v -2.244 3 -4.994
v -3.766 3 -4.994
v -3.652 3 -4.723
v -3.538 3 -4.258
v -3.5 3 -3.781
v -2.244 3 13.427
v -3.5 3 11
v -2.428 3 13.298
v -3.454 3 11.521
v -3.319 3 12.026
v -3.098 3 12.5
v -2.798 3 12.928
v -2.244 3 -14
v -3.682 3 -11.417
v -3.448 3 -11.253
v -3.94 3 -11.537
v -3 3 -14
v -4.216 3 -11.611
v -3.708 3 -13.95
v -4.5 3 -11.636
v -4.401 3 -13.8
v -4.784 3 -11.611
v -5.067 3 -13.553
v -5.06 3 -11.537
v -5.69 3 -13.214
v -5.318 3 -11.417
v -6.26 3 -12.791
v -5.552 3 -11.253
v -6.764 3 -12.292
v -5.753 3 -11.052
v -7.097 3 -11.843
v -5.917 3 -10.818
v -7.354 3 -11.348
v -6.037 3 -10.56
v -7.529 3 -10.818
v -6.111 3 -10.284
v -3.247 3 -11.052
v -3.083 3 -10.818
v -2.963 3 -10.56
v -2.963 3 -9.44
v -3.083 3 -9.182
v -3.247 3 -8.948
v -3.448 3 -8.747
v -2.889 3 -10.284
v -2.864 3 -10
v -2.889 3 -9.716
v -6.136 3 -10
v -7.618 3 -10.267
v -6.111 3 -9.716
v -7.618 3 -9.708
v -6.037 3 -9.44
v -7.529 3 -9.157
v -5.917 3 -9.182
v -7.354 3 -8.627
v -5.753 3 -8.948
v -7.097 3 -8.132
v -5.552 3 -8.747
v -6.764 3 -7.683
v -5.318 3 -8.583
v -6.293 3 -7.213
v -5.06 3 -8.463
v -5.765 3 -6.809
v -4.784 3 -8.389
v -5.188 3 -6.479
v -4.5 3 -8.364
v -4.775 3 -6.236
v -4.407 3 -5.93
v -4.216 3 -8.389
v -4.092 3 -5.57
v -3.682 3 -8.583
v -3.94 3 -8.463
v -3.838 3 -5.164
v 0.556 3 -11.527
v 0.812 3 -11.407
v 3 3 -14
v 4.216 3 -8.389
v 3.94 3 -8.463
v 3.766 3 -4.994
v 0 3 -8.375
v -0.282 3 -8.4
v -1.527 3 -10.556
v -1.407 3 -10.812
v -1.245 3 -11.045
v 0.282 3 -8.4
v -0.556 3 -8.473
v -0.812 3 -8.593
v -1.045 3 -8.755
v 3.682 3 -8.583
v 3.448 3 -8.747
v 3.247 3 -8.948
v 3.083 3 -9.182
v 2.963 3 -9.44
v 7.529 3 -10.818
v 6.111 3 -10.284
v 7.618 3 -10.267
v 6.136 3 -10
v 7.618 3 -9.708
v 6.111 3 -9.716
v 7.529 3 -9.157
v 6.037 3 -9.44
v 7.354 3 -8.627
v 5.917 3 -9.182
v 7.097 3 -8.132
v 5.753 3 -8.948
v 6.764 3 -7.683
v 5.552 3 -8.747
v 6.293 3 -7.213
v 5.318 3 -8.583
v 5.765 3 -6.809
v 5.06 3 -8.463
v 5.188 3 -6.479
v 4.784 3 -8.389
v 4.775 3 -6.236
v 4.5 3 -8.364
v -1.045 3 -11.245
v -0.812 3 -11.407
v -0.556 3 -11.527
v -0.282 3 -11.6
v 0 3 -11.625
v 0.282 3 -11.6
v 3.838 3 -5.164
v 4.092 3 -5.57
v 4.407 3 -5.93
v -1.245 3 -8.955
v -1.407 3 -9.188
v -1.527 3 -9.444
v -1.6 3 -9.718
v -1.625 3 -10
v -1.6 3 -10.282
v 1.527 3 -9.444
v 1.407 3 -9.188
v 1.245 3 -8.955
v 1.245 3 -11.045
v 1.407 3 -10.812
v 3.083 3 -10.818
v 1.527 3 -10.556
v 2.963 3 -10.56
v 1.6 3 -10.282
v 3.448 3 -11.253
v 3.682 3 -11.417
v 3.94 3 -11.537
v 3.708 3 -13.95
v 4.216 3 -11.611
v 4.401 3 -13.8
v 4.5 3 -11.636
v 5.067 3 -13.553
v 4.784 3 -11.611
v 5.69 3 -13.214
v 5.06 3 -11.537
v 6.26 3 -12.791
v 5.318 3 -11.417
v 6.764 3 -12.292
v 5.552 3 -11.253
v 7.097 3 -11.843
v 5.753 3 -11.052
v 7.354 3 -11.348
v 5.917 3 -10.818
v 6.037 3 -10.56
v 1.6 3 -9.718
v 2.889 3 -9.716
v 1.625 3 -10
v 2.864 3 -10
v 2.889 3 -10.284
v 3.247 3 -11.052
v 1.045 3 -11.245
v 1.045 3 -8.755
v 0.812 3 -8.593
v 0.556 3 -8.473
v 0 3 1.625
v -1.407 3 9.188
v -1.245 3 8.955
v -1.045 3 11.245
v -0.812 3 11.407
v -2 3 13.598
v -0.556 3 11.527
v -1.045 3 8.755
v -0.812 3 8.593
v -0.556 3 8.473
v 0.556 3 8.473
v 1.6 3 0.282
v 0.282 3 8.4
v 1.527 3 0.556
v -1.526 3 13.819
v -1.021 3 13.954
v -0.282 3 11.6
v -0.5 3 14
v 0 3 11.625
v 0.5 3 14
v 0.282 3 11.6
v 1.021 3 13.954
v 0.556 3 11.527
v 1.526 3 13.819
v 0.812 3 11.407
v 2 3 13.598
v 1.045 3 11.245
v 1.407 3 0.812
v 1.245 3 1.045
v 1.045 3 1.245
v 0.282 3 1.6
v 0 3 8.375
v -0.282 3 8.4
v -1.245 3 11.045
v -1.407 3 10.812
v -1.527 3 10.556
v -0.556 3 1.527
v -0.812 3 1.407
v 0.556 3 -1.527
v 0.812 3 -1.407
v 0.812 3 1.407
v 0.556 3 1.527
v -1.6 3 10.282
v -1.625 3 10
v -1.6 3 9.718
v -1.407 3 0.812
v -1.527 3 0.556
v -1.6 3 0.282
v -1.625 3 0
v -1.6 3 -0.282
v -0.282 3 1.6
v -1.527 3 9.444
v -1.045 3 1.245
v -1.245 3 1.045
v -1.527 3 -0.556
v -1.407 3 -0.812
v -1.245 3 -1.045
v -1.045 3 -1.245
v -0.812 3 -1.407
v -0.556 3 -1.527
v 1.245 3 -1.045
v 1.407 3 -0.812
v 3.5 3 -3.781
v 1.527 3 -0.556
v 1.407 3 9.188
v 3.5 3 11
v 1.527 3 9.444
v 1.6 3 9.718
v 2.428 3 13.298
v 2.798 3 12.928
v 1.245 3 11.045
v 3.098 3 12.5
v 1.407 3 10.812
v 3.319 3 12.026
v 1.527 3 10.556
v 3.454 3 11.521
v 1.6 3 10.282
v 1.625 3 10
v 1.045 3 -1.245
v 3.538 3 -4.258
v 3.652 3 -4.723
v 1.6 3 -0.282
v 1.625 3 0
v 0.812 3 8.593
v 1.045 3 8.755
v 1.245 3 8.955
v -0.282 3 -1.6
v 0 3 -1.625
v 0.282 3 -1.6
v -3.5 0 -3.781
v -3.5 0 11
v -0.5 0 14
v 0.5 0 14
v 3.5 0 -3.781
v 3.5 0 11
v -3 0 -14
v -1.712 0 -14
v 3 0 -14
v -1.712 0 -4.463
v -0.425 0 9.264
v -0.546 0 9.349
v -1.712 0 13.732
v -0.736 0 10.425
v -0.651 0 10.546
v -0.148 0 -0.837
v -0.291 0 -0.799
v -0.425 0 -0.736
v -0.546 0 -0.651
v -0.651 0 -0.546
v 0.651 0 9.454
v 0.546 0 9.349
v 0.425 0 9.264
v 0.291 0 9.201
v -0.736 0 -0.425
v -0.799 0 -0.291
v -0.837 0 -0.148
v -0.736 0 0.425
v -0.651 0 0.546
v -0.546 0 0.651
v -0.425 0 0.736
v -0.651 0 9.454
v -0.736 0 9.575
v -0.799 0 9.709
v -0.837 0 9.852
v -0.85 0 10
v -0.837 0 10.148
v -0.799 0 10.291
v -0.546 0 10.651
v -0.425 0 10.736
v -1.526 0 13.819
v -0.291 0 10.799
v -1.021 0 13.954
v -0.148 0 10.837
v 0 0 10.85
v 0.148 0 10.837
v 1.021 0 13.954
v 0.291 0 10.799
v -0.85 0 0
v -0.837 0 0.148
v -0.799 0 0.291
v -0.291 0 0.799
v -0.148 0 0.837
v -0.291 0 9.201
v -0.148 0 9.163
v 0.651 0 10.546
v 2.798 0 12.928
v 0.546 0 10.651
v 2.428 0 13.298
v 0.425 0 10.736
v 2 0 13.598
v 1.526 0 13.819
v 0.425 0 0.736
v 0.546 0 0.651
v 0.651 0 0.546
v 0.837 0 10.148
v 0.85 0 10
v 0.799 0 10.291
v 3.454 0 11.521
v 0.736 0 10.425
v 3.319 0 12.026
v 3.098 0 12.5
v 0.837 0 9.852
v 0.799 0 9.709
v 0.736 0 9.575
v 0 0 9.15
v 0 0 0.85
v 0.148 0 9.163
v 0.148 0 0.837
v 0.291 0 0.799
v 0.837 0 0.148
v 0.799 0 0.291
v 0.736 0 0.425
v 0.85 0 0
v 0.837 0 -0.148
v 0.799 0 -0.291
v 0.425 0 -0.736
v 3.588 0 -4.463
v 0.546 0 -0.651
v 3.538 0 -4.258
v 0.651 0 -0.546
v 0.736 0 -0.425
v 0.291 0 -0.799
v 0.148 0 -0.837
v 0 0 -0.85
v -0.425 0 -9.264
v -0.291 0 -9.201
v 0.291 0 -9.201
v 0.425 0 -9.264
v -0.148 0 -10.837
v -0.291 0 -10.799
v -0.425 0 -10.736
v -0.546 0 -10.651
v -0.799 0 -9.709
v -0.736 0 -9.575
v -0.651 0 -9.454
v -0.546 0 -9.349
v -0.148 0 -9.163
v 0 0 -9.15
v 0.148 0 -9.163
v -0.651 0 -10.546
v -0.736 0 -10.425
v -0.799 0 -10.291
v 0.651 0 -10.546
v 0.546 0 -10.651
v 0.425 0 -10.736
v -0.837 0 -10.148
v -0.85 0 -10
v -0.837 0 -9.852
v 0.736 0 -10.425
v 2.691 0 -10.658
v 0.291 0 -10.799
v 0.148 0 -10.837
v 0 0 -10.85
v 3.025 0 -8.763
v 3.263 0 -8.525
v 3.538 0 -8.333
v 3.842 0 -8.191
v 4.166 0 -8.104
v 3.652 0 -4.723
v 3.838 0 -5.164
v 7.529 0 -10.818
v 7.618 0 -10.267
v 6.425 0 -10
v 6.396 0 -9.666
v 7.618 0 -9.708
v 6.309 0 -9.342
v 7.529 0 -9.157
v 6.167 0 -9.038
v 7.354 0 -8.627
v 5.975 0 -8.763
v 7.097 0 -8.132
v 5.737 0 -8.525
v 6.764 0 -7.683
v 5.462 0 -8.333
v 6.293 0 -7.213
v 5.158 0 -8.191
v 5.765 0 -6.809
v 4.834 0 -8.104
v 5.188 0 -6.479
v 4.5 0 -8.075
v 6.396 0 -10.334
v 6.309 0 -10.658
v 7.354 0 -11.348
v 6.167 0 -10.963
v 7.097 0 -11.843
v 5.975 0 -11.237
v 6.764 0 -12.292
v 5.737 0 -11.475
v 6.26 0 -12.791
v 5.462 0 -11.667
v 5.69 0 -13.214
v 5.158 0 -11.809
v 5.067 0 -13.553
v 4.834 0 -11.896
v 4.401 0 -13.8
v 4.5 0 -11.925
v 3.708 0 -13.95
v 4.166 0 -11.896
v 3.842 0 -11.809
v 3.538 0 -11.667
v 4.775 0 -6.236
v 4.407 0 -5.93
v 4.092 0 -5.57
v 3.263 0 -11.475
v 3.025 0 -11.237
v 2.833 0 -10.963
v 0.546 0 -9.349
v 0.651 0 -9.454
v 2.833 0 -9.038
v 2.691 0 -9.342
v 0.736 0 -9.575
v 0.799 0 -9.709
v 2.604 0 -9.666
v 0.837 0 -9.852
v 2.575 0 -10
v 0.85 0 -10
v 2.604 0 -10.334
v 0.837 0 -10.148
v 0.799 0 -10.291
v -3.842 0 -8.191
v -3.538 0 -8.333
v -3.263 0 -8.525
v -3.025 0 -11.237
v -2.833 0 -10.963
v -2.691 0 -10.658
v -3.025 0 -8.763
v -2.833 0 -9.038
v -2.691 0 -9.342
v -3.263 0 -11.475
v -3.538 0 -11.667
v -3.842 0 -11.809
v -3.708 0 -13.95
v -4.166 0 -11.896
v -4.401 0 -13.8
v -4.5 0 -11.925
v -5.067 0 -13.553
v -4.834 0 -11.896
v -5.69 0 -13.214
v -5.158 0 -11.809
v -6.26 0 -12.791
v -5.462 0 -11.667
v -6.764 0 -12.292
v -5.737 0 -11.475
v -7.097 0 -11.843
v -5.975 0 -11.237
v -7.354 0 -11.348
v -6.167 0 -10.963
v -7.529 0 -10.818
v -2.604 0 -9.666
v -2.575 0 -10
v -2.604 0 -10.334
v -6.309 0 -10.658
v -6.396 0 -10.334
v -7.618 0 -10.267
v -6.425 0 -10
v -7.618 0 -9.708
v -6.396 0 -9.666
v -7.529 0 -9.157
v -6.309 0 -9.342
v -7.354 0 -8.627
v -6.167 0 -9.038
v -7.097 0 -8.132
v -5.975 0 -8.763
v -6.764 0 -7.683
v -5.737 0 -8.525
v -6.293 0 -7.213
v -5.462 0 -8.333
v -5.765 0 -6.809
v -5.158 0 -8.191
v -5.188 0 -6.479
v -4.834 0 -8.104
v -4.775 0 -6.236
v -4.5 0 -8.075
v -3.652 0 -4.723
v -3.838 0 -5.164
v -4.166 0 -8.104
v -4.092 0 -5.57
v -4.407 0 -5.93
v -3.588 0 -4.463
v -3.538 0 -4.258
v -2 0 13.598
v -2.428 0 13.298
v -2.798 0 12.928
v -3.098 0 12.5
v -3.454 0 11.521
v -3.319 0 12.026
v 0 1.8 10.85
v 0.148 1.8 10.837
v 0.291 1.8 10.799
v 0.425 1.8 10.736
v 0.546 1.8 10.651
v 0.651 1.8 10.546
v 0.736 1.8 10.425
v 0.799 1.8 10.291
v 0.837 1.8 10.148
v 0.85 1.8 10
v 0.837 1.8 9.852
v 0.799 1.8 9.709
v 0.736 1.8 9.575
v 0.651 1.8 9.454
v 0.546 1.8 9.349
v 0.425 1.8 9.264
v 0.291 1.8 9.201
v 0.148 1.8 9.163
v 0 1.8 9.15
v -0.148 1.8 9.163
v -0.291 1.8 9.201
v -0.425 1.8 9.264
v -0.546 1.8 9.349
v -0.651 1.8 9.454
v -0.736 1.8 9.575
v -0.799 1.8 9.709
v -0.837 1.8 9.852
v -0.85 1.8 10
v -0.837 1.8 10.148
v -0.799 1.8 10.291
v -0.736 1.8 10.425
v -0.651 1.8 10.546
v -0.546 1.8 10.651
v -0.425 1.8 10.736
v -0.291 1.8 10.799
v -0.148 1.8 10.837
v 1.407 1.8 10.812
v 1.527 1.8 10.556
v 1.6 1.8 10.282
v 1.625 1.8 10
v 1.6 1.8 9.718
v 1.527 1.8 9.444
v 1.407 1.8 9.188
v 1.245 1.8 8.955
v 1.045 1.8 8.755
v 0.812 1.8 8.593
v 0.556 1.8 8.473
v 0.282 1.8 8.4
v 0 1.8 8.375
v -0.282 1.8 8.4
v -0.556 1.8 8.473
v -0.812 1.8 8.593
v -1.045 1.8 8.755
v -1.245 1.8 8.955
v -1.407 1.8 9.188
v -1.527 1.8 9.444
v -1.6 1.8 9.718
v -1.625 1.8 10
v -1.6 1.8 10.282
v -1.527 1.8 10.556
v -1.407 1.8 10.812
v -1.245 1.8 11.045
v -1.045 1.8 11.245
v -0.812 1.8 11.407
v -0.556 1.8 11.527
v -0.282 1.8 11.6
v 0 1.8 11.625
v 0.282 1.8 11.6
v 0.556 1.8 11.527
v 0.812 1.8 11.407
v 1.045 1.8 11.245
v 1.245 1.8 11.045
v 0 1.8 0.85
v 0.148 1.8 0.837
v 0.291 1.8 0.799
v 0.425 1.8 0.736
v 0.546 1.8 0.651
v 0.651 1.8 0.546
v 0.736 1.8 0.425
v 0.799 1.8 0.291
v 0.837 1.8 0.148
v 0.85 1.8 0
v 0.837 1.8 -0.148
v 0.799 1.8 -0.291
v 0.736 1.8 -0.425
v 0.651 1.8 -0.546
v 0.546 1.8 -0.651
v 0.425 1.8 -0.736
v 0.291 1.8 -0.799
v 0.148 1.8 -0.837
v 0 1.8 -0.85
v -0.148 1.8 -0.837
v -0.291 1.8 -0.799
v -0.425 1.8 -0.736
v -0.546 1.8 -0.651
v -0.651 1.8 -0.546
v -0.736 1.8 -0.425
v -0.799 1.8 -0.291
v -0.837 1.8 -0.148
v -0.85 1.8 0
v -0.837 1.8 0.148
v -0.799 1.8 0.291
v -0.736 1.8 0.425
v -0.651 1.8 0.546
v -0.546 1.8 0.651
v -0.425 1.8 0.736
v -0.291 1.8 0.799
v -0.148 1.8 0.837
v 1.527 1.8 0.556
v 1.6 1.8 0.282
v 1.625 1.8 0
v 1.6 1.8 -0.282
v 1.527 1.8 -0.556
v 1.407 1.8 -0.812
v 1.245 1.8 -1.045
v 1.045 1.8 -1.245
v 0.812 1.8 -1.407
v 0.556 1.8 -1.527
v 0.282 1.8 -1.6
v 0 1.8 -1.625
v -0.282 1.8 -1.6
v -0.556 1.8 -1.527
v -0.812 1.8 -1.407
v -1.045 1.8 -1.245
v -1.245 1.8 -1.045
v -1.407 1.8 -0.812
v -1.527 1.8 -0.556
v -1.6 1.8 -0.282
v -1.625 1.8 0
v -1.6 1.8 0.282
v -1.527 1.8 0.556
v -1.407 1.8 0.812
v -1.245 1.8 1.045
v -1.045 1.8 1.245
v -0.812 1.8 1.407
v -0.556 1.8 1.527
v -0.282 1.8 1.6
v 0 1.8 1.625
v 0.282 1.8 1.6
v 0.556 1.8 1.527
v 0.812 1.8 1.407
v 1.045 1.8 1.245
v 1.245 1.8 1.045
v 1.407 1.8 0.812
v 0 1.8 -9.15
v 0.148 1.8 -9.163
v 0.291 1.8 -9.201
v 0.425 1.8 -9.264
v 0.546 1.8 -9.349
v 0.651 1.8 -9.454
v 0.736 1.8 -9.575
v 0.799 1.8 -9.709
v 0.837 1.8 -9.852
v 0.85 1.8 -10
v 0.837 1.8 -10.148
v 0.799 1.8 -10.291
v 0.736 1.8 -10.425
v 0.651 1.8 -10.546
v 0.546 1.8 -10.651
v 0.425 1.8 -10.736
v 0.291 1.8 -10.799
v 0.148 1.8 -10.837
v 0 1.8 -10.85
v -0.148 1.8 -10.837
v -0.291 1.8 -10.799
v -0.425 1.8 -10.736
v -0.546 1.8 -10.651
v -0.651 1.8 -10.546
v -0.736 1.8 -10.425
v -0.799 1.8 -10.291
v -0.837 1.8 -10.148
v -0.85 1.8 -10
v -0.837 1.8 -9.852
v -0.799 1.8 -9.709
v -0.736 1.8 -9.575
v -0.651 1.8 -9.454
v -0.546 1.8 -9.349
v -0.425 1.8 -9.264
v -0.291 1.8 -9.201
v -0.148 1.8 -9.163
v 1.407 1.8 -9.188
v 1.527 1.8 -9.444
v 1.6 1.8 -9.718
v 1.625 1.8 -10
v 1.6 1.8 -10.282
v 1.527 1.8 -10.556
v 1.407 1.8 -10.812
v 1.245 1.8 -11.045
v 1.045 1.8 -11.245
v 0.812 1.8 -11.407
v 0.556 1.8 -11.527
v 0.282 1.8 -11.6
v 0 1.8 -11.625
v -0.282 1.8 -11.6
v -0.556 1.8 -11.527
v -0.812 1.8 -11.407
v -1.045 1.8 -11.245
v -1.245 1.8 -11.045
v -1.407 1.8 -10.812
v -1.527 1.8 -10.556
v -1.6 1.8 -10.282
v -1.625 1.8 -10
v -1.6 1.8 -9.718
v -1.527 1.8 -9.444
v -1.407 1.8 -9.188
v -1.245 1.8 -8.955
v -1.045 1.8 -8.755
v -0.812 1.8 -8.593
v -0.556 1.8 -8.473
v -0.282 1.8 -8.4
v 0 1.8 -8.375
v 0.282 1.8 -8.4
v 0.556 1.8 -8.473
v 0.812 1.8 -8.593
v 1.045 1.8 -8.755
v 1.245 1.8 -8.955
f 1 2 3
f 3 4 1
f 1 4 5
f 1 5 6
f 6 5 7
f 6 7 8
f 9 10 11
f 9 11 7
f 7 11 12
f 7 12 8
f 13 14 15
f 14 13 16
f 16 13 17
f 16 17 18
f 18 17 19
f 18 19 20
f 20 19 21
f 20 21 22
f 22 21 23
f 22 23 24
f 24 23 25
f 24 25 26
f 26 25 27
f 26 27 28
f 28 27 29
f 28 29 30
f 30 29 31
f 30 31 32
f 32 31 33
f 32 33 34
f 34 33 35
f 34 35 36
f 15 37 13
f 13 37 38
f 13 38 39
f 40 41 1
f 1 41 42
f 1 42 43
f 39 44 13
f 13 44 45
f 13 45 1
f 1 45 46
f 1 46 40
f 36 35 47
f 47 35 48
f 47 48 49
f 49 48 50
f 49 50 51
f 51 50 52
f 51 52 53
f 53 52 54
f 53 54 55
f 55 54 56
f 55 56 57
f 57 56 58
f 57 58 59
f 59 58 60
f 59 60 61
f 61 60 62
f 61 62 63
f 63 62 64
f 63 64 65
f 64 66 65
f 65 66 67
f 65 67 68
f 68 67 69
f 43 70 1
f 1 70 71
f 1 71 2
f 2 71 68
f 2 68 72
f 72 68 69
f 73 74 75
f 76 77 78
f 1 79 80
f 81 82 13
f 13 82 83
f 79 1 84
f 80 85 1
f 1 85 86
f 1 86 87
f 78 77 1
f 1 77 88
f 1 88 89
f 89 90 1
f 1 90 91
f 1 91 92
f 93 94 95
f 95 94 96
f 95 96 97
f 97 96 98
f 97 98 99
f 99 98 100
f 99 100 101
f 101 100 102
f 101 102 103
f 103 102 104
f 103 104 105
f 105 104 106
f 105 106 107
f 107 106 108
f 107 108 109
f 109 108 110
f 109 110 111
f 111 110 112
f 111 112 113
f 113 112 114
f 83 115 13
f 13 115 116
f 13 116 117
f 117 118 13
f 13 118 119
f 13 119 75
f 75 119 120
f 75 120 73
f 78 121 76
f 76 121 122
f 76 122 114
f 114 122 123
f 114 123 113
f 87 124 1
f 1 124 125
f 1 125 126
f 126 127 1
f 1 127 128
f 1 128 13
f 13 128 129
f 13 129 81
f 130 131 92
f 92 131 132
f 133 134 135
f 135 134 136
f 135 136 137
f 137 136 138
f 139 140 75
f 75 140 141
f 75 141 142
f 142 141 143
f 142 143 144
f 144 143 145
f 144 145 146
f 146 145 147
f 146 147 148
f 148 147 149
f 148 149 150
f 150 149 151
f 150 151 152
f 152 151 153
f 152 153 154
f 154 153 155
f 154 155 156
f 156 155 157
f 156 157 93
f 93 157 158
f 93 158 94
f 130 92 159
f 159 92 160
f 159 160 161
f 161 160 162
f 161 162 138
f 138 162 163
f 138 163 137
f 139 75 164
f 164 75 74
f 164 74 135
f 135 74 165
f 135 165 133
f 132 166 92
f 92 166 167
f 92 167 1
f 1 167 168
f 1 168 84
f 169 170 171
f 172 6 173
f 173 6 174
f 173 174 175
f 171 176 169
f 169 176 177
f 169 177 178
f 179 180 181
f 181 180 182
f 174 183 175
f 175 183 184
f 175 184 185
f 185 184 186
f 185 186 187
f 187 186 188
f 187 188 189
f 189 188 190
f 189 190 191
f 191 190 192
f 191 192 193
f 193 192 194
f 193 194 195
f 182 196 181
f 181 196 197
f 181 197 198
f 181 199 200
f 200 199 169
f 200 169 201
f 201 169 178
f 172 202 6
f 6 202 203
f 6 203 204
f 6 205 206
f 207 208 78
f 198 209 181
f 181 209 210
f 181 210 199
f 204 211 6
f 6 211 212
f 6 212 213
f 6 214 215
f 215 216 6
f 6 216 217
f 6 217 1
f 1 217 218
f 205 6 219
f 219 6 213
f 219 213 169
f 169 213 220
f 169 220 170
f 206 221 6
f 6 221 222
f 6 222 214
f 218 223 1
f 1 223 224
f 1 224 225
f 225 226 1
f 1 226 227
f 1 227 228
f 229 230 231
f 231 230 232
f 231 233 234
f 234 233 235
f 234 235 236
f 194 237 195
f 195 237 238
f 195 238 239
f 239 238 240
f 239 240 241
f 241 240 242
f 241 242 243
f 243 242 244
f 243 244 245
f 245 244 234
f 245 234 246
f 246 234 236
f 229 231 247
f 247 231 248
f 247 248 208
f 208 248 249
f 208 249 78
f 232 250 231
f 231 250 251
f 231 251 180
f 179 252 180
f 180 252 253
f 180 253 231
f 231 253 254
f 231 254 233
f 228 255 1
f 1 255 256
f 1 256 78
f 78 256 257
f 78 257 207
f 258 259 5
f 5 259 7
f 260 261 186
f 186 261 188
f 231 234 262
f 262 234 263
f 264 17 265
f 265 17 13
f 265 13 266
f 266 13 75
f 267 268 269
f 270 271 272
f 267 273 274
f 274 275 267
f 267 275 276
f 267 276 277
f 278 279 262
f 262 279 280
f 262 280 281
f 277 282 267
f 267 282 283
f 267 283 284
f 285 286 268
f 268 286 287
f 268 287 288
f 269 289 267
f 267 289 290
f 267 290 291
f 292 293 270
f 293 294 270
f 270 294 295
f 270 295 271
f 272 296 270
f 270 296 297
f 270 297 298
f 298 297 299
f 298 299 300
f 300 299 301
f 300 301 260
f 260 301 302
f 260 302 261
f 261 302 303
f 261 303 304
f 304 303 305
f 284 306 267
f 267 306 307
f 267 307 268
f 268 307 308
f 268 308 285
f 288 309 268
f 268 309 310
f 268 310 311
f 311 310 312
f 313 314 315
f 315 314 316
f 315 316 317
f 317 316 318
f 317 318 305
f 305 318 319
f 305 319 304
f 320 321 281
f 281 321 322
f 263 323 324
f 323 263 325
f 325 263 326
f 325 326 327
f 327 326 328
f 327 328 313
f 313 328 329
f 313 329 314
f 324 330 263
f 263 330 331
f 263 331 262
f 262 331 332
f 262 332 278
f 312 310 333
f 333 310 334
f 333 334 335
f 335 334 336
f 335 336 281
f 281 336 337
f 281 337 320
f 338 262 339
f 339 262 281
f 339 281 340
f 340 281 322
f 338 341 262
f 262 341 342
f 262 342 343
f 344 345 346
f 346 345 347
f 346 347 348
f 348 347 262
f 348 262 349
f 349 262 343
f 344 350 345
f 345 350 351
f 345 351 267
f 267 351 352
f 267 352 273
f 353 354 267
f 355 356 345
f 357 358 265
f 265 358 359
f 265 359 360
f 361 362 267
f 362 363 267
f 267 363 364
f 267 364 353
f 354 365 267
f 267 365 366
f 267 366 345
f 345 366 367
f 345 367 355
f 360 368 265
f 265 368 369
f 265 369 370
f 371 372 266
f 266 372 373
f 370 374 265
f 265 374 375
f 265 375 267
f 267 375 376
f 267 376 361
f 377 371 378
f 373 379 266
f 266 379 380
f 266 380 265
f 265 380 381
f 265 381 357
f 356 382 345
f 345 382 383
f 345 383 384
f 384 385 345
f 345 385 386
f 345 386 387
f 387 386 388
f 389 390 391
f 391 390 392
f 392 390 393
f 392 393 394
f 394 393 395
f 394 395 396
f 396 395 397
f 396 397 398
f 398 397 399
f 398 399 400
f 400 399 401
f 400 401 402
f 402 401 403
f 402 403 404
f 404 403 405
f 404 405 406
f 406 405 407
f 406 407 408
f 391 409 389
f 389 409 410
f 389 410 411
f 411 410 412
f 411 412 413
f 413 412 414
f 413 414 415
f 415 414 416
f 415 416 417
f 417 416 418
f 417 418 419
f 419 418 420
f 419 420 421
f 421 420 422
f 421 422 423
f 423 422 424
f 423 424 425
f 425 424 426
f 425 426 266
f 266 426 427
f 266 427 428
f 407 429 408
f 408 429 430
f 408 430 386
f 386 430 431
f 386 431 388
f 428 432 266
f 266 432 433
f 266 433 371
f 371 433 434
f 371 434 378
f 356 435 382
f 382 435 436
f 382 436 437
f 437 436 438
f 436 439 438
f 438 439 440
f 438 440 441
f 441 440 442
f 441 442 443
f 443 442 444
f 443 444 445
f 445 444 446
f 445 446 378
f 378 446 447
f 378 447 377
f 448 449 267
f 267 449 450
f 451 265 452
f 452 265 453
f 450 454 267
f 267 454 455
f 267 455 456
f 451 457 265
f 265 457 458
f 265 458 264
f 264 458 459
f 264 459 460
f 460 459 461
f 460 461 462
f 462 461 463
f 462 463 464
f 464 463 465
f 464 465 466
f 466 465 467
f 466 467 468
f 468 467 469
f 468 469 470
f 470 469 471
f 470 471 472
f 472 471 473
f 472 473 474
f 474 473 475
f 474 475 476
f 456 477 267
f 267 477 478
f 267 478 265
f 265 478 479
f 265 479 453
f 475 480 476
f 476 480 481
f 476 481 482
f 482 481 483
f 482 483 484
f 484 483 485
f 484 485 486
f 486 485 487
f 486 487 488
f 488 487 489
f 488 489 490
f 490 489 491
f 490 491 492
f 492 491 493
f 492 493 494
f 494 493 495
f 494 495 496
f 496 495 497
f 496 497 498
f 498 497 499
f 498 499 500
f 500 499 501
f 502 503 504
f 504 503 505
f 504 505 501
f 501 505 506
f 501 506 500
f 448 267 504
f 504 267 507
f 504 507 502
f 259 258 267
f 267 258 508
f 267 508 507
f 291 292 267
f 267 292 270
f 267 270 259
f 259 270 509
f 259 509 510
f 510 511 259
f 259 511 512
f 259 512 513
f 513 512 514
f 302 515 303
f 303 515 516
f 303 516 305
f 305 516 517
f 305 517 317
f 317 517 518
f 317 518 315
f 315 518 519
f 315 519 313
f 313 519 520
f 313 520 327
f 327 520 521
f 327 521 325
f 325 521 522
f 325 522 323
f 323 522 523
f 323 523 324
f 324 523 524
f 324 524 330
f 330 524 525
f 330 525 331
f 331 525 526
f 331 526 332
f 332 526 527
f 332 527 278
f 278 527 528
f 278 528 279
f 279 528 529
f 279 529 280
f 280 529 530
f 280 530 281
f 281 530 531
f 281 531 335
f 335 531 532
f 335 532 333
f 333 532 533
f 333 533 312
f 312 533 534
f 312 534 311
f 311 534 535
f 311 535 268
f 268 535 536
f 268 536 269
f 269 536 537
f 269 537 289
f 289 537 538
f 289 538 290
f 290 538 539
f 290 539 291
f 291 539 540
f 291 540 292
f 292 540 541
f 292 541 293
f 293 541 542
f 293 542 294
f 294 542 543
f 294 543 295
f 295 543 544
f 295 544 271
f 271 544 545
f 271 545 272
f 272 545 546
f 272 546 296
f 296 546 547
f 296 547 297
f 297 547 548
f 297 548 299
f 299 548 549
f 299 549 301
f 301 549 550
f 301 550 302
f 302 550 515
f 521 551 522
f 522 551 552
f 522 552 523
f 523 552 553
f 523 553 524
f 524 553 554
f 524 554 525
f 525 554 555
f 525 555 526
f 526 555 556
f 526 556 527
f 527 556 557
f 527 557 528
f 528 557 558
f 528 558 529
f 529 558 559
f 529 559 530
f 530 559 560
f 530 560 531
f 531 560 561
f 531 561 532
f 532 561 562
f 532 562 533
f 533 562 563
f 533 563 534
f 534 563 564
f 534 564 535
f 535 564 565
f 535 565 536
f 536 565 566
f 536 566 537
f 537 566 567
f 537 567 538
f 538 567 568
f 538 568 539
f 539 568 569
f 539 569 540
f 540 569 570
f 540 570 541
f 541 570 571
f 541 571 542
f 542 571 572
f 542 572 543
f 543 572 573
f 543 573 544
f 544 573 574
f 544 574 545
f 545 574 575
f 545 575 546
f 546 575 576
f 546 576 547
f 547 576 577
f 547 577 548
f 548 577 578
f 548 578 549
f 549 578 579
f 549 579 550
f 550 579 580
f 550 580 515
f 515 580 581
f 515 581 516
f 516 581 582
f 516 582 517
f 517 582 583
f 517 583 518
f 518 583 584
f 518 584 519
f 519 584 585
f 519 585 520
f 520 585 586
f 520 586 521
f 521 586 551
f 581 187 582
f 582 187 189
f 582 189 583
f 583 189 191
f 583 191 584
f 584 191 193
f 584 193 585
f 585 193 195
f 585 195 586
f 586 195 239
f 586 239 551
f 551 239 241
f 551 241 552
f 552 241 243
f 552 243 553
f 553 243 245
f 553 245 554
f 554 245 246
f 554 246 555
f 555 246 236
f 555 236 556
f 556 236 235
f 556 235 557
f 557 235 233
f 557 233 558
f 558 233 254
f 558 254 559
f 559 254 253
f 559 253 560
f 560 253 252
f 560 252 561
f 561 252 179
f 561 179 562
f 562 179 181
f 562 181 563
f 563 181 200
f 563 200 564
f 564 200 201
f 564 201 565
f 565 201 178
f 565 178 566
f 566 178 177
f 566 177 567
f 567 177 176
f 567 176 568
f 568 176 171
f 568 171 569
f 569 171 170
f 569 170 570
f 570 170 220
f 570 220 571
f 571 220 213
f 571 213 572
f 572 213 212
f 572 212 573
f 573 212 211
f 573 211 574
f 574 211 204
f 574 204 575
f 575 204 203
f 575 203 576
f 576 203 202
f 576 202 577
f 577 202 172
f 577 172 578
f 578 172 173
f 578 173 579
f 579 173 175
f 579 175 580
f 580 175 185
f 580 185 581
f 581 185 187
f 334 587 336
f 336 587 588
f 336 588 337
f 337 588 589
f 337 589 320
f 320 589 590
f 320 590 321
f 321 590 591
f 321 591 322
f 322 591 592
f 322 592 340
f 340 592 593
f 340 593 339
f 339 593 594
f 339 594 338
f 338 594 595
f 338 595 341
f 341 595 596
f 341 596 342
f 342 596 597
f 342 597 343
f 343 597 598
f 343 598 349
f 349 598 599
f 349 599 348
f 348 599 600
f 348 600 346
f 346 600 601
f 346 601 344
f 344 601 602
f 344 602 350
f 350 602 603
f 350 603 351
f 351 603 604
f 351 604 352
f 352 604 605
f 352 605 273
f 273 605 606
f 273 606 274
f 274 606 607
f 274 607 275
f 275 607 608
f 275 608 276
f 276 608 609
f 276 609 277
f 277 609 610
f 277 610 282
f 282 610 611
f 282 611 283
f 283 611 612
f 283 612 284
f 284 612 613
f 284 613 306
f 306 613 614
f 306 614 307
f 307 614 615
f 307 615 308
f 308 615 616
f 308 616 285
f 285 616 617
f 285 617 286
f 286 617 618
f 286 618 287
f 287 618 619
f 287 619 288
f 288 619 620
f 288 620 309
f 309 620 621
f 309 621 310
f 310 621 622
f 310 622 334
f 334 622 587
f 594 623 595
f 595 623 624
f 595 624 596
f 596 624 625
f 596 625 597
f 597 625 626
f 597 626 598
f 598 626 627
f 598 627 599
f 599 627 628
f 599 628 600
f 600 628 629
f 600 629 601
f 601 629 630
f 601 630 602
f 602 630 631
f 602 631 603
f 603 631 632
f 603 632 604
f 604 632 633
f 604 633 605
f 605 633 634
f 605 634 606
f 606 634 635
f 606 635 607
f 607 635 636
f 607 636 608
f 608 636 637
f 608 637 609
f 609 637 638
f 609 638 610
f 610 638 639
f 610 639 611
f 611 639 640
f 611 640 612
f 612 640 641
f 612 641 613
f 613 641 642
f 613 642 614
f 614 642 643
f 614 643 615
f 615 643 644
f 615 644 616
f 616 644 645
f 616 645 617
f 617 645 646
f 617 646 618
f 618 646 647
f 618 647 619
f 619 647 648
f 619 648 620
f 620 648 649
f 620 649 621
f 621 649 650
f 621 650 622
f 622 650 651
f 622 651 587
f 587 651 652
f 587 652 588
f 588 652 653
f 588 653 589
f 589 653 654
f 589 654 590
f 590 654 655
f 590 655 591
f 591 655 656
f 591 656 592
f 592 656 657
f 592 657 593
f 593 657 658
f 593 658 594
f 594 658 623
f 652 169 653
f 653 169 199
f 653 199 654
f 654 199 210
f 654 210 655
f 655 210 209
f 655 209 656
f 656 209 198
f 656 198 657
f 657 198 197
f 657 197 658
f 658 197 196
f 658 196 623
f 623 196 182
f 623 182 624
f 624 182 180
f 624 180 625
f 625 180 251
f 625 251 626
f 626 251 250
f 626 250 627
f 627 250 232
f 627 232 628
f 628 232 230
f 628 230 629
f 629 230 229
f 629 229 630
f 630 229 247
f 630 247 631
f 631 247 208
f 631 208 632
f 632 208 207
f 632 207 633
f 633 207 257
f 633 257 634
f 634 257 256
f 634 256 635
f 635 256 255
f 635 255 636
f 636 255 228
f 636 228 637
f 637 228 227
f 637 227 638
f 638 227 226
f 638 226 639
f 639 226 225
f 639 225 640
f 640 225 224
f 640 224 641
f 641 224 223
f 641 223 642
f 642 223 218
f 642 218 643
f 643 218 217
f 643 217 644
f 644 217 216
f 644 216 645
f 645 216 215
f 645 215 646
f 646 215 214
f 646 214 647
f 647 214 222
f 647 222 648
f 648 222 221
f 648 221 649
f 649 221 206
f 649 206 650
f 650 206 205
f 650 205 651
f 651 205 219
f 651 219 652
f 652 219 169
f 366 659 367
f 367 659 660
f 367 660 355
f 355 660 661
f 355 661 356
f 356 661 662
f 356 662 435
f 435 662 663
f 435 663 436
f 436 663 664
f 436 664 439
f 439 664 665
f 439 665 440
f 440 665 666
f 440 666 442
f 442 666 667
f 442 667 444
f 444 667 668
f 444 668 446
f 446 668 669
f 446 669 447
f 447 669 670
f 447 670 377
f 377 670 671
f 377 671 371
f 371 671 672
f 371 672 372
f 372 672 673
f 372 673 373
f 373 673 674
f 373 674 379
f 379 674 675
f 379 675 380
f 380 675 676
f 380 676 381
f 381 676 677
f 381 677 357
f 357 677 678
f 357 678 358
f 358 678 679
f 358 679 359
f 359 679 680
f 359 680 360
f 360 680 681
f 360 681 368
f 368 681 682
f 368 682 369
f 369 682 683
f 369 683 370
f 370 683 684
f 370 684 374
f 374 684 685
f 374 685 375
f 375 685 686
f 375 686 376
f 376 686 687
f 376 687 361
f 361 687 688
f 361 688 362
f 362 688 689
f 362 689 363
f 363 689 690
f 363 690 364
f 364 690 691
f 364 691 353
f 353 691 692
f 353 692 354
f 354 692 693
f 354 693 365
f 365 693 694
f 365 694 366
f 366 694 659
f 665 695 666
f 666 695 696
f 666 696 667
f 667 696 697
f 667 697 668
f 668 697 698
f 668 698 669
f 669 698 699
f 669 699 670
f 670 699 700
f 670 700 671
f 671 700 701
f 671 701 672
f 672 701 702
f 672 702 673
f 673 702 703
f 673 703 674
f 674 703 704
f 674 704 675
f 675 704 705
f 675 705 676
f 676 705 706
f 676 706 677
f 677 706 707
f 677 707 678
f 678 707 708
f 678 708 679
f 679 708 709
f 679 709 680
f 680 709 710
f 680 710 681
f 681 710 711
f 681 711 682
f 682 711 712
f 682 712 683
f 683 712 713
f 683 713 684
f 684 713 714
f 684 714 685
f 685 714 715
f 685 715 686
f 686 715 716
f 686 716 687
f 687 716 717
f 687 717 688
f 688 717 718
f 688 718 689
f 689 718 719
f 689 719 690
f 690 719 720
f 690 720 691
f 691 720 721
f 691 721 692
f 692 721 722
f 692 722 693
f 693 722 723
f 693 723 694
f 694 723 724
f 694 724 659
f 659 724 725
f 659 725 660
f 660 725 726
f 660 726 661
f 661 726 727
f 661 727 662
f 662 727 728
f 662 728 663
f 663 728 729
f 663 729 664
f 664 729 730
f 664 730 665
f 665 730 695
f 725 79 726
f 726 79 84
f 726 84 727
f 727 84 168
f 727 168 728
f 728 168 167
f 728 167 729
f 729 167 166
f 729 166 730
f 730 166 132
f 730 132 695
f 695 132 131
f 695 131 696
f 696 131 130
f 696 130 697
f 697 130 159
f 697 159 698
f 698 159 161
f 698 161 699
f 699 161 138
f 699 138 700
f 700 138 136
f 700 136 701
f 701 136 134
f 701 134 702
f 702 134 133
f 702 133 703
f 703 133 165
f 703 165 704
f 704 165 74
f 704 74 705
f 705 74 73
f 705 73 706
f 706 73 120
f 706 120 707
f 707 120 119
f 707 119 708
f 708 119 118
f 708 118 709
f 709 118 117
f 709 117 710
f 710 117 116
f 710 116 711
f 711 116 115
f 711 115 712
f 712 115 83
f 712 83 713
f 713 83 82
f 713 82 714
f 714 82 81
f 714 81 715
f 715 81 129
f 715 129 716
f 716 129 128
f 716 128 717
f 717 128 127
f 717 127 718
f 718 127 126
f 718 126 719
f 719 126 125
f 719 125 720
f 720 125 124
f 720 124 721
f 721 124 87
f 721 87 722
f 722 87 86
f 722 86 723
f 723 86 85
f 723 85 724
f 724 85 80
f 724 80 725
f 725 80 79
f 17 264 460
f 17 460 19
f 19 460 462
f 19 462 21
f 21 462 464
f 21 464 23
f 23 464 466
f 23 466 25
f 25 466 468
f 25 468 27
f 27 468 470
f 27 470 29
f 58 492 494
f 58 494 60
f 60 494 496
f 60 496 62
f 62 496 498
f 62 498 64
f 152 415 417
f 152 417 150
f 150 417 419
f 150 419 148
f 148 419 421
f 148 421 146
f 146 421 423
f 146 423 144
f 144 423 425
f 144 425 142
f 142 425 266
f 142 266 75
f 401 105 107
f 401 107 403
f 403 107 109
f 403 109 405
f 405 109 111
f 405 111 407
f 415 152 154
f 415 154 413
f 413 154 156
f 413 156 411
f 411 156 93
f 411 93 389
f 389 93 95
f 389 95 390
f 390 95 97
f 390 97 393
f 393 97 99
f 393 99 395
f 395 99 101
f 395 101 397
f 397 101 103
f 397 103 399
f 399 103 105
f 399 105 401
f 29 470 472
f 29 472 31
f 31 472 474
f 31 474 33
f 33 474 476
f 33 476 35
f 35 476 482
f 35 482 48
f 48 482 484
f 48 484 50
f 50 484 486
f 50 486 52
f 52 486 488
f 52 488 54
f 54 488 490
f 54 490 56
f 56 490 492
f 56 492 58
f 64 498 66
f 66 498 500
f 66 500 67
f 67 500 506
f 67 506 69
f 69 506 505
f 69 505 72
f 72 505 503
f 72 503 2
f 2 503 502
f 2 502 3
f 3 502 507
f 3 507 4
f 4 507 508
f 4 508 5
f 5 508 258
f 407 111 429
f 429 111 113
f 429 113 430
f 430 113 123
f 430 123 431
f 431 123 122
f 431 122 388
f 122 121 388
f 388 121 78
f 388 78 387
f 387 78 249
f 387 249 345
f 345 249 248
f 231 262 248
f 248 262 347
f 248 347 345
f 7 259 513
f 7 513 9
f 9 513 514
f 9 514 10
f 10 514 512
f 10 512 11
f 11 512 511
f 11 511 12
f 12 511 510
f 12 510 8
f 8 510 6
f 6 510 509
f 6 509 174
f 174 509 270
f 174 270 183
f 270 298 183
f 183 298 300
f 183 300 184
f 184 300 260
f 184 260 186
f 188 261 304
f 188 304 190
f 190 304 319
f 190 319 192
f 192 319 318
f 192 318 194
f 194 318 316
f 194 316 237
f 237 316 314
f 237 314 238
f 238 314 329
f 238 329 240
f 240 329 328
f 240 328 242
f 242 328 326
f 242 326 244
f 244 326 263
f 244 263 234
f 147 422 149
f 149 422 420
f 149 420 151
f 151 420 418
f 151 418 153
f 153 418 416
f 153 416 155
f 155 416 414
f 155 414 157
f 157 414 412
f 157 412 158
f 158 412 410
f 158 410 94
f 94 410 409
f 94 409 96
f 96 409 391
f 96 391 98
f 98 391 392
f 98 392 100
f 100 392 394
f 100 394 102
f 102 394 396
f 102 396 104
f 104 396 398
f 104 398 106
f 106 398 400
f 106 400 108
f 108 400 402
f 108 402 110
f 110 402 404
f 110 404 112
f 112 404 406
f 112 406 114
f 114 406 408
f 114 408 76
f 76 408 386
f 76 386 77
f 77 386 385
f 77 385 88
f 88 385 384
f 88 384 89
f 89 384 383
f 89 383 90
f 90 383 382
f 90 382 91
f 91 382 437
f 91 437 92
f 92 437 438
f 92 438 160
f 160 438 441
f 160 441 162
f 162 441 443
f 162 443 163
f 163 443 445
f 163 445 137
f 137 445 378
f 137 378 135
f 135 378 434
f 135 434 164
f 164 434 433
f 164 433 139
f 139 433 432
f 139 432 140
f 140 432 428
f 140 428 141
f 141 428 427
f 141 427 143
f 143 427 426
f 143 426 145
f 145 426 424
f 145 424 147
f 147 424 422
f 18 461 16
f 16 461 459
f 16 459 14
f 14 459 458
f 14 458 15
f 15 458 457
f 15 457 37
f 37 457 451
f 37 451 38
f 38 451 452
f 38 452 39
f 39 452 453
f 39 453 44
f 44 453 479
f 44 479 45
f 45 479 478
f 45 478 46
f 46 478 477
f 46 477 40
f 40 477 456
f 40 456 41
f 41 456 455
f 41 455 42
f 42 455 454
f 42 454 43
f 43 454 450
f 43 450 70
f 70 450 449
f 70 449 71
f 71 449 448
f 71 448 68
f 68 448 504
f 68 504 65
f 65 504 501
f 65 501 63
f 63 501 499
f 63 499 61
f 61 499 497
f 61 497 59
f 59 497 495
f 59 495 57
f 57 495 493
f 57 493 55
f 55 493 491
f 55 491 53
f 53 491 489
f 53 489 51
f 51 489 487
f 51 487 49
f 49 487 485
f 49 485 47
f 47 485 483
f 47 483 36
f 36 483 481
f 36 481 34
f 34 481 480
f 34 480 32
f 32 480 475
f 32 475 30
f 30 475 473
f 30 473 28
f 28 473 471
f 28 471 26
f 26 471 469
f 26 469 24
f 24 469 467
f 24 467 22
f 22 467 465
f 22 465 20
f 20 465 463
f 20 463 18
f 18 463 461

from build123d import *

# Parameters (mm, degrees)
BOSS_EXTRUDE1_DEPTH                          = 3
CBORE_FOR_M5_HEX_HEAD_BOLT1_D                = 1.7
CBORE_FOR_M5_HEX_HEAD_BOLT1_CBORE_D          = 3.25
CBORE_FOR_M5_HEX_HEAD_BOLT1_CBORE_DEPTH      = 1.2
FILLET1_R                                    = 5
FILLET2_R                                    = 3.5
FILLET3_R                                    = 3
CSK_FOR_M2_COUNTERSUNK_FLAT_HEAD_SCR_2_COUNT = 2
CSK_FOR_M2_COUNTERSUNK_FLAT_HEAD_SCR_2_PITCH = 9


with BuildPart() as part:
    # Sketch1 → Boss-Extrude1 (new body)
    with BuildSketch(Plane(origin=(0, 0, 0), x_dir=(1, 0, 0), z_dir=(0, 1, 0))):
        Polygon((3.5, 6), (8, 6), (8, 14), (-8, 14), (-8, 6), (-3.5, 6), (-3.5, -14), (3.5, -14), align=None)
    extrude(amount=BOSS_EXTRUDE1_DEPTH)

    # CBORE for M5 Hex Head Bolt1 (through all)
    with Locations(Plane(origin=(0, 3, 0), x_dir=(1, 0, 0), z_dir=(0, 1, 0))):
        with Locations((0, 10), (0, 0), (0, -10)):
            CounterBoreHole(CBORE_FOR_M5_HEX_HEAD_BOLT1_D / 2, CBORE_FOR_M5_HEX_HEAD_BOLT1_CBORE_D / 2, CBORE_FOR_M5_HEX_HEAD_BOLT1_CBORE_DEPTH)

    # Fillet1
    # the kernel refuses this fillet: 5 mm, written as the material it takes off along each edge
    with BuildSketch(Plane(origin=(-8, -12.437342964, -6), x_dir=(0, 0, -1), z_dir=(0, 1, 0))) as fillet1_piece_1:
        with BuildLine():
            CenterArc((4.974937186, -5), FILLET1_R, 90, 84.260829523)
            Line((0, -4.5), (-0.099498744, -4.49))
            ThreePointArc((-0.099498744, -4.49), (-0.1, -2.25), (-0.1, 0))
            Line((-0.1, 0), (0, 0.1))
            Line((0, 0.1), (4.974937186, 0.1))
            Line((4.974937186, 0.1), (4.974937186, 0))
        make_face()
    extrude(amount=27.874685928, mode=Mode.SUBTRACT)
    with BuildSketch(Plane(origin=(-8, -12.5, -14), x_dir=(1, 0, 0), z_dir=(0, 1, 0)), Plane(origin=(8, -12.5, -14), x_dir=(0, 0, 1), z_dir=(0, 1, 0))) as fillet1_piece_2:
        with BuildLine():
            CenterArc((FILLET1_R, -FILLET1_R), FILLET1_R, 90, 90)
            Line((0, -FILLET1_R), (-FILLET1_R * 0.02, -FILLET1_R))
            Line((-FILLET1_R * 0.02, -FILLET1_R), (-FILLET1_R * 0.02, FILLET1_R * 0.02))
            Line((-FILLET1_R * 0.02, FILLET1_R * 0.02), (FILLET1_R, FILLET1_R * 0.02))
            Line((FILLET1_R, FILLET1_R * 0.02), (FILLET1_R, 0))
        make_face()
    extrude(amount=28, mode=Mode.SUBTRACT)
    with BuildSketch(Plane(origin=(8, -12.437342964, -6), x_dir=(-1, 0, 0), z_dir=(0, 1, 0))) as fillet1_piece_3:
        with BuildLine():
            CenterArc((5, -4.974937186), FILLET1_R, 95.739170477, 84.260829523)
            Line((0, -4.974937186), (-0.1, -4.974937186))
            Line((-0.1, -4.974937186), (-0.1, 0))
            Line((-0.1, 0), (0, 0.1))
            ThreePointArc((0, 0.1), (2.25, 0.1), (4.49, 0.099498744))
            Line((4.49, 0.099498744), (4.5, 0))
        make_face()
    extrude(amount=27.874685928, mode=Mode.SUBTRACT)

    # Fillet2
    fillet2_edges = [part.edges().sort_by_distance(p)[0] for p in [
        (-7.901520762, 1.5, -9.987468593),
        (7.901520762, 1.5, -9.987468593),
    ]]
    fillet(fillet2_edges, radius=FILLET2_R)

    # Fillet3
    fillet3_edges = [part.edges().sort_by_distance(p)[0] for p in [
        (3.5, 1.5, -6),
        (3.5, 1.5, 14),
        (-3.5, 1.5, 14),
        (-3.5, 1.5, -6),
    ]]
    fillet(fillet3_edges, radius=FILLET3_R)

    # Sketch8 → CSK for M2 Countersunk Flat Head Screw2 (revolve, cut)
    with BuildSketch(Plane(origin=(-4.5, 0, -10), x_dir=(0, 0, -1), z_dir=(1, 0, 0))):
        Polygon((0, 0), (0, 3), (1.6, 3), (1.6, 3.375254051), (1.925, 0), align=None)
    csk_for_m2_countersunk_flat_head_screw2 = revolve(axis=Axis((-4.5, -6.35, -10), (0, 1, 0)), mode=Mode.SUBTRACT)

    # CSK for M2 Countersunk Flat Head Scr 2: CSK for M2 Countersunk Flat Head Screw2 ×2
    with Locations(*[(i * CSK_FOR_M2_COUNTERSUNK_FLAT_HEAD_SCR_2_PITCH, 0, 0) for i in range(1, CSK_FOR_M2_COUNTERSUNK_FLAT_HEAD_SCR_2_COUNT)]):
        add(csk_for_m2_countersunk_flat_head_screw2, mode=Mode.SUBTRACT)


solid = part.part
